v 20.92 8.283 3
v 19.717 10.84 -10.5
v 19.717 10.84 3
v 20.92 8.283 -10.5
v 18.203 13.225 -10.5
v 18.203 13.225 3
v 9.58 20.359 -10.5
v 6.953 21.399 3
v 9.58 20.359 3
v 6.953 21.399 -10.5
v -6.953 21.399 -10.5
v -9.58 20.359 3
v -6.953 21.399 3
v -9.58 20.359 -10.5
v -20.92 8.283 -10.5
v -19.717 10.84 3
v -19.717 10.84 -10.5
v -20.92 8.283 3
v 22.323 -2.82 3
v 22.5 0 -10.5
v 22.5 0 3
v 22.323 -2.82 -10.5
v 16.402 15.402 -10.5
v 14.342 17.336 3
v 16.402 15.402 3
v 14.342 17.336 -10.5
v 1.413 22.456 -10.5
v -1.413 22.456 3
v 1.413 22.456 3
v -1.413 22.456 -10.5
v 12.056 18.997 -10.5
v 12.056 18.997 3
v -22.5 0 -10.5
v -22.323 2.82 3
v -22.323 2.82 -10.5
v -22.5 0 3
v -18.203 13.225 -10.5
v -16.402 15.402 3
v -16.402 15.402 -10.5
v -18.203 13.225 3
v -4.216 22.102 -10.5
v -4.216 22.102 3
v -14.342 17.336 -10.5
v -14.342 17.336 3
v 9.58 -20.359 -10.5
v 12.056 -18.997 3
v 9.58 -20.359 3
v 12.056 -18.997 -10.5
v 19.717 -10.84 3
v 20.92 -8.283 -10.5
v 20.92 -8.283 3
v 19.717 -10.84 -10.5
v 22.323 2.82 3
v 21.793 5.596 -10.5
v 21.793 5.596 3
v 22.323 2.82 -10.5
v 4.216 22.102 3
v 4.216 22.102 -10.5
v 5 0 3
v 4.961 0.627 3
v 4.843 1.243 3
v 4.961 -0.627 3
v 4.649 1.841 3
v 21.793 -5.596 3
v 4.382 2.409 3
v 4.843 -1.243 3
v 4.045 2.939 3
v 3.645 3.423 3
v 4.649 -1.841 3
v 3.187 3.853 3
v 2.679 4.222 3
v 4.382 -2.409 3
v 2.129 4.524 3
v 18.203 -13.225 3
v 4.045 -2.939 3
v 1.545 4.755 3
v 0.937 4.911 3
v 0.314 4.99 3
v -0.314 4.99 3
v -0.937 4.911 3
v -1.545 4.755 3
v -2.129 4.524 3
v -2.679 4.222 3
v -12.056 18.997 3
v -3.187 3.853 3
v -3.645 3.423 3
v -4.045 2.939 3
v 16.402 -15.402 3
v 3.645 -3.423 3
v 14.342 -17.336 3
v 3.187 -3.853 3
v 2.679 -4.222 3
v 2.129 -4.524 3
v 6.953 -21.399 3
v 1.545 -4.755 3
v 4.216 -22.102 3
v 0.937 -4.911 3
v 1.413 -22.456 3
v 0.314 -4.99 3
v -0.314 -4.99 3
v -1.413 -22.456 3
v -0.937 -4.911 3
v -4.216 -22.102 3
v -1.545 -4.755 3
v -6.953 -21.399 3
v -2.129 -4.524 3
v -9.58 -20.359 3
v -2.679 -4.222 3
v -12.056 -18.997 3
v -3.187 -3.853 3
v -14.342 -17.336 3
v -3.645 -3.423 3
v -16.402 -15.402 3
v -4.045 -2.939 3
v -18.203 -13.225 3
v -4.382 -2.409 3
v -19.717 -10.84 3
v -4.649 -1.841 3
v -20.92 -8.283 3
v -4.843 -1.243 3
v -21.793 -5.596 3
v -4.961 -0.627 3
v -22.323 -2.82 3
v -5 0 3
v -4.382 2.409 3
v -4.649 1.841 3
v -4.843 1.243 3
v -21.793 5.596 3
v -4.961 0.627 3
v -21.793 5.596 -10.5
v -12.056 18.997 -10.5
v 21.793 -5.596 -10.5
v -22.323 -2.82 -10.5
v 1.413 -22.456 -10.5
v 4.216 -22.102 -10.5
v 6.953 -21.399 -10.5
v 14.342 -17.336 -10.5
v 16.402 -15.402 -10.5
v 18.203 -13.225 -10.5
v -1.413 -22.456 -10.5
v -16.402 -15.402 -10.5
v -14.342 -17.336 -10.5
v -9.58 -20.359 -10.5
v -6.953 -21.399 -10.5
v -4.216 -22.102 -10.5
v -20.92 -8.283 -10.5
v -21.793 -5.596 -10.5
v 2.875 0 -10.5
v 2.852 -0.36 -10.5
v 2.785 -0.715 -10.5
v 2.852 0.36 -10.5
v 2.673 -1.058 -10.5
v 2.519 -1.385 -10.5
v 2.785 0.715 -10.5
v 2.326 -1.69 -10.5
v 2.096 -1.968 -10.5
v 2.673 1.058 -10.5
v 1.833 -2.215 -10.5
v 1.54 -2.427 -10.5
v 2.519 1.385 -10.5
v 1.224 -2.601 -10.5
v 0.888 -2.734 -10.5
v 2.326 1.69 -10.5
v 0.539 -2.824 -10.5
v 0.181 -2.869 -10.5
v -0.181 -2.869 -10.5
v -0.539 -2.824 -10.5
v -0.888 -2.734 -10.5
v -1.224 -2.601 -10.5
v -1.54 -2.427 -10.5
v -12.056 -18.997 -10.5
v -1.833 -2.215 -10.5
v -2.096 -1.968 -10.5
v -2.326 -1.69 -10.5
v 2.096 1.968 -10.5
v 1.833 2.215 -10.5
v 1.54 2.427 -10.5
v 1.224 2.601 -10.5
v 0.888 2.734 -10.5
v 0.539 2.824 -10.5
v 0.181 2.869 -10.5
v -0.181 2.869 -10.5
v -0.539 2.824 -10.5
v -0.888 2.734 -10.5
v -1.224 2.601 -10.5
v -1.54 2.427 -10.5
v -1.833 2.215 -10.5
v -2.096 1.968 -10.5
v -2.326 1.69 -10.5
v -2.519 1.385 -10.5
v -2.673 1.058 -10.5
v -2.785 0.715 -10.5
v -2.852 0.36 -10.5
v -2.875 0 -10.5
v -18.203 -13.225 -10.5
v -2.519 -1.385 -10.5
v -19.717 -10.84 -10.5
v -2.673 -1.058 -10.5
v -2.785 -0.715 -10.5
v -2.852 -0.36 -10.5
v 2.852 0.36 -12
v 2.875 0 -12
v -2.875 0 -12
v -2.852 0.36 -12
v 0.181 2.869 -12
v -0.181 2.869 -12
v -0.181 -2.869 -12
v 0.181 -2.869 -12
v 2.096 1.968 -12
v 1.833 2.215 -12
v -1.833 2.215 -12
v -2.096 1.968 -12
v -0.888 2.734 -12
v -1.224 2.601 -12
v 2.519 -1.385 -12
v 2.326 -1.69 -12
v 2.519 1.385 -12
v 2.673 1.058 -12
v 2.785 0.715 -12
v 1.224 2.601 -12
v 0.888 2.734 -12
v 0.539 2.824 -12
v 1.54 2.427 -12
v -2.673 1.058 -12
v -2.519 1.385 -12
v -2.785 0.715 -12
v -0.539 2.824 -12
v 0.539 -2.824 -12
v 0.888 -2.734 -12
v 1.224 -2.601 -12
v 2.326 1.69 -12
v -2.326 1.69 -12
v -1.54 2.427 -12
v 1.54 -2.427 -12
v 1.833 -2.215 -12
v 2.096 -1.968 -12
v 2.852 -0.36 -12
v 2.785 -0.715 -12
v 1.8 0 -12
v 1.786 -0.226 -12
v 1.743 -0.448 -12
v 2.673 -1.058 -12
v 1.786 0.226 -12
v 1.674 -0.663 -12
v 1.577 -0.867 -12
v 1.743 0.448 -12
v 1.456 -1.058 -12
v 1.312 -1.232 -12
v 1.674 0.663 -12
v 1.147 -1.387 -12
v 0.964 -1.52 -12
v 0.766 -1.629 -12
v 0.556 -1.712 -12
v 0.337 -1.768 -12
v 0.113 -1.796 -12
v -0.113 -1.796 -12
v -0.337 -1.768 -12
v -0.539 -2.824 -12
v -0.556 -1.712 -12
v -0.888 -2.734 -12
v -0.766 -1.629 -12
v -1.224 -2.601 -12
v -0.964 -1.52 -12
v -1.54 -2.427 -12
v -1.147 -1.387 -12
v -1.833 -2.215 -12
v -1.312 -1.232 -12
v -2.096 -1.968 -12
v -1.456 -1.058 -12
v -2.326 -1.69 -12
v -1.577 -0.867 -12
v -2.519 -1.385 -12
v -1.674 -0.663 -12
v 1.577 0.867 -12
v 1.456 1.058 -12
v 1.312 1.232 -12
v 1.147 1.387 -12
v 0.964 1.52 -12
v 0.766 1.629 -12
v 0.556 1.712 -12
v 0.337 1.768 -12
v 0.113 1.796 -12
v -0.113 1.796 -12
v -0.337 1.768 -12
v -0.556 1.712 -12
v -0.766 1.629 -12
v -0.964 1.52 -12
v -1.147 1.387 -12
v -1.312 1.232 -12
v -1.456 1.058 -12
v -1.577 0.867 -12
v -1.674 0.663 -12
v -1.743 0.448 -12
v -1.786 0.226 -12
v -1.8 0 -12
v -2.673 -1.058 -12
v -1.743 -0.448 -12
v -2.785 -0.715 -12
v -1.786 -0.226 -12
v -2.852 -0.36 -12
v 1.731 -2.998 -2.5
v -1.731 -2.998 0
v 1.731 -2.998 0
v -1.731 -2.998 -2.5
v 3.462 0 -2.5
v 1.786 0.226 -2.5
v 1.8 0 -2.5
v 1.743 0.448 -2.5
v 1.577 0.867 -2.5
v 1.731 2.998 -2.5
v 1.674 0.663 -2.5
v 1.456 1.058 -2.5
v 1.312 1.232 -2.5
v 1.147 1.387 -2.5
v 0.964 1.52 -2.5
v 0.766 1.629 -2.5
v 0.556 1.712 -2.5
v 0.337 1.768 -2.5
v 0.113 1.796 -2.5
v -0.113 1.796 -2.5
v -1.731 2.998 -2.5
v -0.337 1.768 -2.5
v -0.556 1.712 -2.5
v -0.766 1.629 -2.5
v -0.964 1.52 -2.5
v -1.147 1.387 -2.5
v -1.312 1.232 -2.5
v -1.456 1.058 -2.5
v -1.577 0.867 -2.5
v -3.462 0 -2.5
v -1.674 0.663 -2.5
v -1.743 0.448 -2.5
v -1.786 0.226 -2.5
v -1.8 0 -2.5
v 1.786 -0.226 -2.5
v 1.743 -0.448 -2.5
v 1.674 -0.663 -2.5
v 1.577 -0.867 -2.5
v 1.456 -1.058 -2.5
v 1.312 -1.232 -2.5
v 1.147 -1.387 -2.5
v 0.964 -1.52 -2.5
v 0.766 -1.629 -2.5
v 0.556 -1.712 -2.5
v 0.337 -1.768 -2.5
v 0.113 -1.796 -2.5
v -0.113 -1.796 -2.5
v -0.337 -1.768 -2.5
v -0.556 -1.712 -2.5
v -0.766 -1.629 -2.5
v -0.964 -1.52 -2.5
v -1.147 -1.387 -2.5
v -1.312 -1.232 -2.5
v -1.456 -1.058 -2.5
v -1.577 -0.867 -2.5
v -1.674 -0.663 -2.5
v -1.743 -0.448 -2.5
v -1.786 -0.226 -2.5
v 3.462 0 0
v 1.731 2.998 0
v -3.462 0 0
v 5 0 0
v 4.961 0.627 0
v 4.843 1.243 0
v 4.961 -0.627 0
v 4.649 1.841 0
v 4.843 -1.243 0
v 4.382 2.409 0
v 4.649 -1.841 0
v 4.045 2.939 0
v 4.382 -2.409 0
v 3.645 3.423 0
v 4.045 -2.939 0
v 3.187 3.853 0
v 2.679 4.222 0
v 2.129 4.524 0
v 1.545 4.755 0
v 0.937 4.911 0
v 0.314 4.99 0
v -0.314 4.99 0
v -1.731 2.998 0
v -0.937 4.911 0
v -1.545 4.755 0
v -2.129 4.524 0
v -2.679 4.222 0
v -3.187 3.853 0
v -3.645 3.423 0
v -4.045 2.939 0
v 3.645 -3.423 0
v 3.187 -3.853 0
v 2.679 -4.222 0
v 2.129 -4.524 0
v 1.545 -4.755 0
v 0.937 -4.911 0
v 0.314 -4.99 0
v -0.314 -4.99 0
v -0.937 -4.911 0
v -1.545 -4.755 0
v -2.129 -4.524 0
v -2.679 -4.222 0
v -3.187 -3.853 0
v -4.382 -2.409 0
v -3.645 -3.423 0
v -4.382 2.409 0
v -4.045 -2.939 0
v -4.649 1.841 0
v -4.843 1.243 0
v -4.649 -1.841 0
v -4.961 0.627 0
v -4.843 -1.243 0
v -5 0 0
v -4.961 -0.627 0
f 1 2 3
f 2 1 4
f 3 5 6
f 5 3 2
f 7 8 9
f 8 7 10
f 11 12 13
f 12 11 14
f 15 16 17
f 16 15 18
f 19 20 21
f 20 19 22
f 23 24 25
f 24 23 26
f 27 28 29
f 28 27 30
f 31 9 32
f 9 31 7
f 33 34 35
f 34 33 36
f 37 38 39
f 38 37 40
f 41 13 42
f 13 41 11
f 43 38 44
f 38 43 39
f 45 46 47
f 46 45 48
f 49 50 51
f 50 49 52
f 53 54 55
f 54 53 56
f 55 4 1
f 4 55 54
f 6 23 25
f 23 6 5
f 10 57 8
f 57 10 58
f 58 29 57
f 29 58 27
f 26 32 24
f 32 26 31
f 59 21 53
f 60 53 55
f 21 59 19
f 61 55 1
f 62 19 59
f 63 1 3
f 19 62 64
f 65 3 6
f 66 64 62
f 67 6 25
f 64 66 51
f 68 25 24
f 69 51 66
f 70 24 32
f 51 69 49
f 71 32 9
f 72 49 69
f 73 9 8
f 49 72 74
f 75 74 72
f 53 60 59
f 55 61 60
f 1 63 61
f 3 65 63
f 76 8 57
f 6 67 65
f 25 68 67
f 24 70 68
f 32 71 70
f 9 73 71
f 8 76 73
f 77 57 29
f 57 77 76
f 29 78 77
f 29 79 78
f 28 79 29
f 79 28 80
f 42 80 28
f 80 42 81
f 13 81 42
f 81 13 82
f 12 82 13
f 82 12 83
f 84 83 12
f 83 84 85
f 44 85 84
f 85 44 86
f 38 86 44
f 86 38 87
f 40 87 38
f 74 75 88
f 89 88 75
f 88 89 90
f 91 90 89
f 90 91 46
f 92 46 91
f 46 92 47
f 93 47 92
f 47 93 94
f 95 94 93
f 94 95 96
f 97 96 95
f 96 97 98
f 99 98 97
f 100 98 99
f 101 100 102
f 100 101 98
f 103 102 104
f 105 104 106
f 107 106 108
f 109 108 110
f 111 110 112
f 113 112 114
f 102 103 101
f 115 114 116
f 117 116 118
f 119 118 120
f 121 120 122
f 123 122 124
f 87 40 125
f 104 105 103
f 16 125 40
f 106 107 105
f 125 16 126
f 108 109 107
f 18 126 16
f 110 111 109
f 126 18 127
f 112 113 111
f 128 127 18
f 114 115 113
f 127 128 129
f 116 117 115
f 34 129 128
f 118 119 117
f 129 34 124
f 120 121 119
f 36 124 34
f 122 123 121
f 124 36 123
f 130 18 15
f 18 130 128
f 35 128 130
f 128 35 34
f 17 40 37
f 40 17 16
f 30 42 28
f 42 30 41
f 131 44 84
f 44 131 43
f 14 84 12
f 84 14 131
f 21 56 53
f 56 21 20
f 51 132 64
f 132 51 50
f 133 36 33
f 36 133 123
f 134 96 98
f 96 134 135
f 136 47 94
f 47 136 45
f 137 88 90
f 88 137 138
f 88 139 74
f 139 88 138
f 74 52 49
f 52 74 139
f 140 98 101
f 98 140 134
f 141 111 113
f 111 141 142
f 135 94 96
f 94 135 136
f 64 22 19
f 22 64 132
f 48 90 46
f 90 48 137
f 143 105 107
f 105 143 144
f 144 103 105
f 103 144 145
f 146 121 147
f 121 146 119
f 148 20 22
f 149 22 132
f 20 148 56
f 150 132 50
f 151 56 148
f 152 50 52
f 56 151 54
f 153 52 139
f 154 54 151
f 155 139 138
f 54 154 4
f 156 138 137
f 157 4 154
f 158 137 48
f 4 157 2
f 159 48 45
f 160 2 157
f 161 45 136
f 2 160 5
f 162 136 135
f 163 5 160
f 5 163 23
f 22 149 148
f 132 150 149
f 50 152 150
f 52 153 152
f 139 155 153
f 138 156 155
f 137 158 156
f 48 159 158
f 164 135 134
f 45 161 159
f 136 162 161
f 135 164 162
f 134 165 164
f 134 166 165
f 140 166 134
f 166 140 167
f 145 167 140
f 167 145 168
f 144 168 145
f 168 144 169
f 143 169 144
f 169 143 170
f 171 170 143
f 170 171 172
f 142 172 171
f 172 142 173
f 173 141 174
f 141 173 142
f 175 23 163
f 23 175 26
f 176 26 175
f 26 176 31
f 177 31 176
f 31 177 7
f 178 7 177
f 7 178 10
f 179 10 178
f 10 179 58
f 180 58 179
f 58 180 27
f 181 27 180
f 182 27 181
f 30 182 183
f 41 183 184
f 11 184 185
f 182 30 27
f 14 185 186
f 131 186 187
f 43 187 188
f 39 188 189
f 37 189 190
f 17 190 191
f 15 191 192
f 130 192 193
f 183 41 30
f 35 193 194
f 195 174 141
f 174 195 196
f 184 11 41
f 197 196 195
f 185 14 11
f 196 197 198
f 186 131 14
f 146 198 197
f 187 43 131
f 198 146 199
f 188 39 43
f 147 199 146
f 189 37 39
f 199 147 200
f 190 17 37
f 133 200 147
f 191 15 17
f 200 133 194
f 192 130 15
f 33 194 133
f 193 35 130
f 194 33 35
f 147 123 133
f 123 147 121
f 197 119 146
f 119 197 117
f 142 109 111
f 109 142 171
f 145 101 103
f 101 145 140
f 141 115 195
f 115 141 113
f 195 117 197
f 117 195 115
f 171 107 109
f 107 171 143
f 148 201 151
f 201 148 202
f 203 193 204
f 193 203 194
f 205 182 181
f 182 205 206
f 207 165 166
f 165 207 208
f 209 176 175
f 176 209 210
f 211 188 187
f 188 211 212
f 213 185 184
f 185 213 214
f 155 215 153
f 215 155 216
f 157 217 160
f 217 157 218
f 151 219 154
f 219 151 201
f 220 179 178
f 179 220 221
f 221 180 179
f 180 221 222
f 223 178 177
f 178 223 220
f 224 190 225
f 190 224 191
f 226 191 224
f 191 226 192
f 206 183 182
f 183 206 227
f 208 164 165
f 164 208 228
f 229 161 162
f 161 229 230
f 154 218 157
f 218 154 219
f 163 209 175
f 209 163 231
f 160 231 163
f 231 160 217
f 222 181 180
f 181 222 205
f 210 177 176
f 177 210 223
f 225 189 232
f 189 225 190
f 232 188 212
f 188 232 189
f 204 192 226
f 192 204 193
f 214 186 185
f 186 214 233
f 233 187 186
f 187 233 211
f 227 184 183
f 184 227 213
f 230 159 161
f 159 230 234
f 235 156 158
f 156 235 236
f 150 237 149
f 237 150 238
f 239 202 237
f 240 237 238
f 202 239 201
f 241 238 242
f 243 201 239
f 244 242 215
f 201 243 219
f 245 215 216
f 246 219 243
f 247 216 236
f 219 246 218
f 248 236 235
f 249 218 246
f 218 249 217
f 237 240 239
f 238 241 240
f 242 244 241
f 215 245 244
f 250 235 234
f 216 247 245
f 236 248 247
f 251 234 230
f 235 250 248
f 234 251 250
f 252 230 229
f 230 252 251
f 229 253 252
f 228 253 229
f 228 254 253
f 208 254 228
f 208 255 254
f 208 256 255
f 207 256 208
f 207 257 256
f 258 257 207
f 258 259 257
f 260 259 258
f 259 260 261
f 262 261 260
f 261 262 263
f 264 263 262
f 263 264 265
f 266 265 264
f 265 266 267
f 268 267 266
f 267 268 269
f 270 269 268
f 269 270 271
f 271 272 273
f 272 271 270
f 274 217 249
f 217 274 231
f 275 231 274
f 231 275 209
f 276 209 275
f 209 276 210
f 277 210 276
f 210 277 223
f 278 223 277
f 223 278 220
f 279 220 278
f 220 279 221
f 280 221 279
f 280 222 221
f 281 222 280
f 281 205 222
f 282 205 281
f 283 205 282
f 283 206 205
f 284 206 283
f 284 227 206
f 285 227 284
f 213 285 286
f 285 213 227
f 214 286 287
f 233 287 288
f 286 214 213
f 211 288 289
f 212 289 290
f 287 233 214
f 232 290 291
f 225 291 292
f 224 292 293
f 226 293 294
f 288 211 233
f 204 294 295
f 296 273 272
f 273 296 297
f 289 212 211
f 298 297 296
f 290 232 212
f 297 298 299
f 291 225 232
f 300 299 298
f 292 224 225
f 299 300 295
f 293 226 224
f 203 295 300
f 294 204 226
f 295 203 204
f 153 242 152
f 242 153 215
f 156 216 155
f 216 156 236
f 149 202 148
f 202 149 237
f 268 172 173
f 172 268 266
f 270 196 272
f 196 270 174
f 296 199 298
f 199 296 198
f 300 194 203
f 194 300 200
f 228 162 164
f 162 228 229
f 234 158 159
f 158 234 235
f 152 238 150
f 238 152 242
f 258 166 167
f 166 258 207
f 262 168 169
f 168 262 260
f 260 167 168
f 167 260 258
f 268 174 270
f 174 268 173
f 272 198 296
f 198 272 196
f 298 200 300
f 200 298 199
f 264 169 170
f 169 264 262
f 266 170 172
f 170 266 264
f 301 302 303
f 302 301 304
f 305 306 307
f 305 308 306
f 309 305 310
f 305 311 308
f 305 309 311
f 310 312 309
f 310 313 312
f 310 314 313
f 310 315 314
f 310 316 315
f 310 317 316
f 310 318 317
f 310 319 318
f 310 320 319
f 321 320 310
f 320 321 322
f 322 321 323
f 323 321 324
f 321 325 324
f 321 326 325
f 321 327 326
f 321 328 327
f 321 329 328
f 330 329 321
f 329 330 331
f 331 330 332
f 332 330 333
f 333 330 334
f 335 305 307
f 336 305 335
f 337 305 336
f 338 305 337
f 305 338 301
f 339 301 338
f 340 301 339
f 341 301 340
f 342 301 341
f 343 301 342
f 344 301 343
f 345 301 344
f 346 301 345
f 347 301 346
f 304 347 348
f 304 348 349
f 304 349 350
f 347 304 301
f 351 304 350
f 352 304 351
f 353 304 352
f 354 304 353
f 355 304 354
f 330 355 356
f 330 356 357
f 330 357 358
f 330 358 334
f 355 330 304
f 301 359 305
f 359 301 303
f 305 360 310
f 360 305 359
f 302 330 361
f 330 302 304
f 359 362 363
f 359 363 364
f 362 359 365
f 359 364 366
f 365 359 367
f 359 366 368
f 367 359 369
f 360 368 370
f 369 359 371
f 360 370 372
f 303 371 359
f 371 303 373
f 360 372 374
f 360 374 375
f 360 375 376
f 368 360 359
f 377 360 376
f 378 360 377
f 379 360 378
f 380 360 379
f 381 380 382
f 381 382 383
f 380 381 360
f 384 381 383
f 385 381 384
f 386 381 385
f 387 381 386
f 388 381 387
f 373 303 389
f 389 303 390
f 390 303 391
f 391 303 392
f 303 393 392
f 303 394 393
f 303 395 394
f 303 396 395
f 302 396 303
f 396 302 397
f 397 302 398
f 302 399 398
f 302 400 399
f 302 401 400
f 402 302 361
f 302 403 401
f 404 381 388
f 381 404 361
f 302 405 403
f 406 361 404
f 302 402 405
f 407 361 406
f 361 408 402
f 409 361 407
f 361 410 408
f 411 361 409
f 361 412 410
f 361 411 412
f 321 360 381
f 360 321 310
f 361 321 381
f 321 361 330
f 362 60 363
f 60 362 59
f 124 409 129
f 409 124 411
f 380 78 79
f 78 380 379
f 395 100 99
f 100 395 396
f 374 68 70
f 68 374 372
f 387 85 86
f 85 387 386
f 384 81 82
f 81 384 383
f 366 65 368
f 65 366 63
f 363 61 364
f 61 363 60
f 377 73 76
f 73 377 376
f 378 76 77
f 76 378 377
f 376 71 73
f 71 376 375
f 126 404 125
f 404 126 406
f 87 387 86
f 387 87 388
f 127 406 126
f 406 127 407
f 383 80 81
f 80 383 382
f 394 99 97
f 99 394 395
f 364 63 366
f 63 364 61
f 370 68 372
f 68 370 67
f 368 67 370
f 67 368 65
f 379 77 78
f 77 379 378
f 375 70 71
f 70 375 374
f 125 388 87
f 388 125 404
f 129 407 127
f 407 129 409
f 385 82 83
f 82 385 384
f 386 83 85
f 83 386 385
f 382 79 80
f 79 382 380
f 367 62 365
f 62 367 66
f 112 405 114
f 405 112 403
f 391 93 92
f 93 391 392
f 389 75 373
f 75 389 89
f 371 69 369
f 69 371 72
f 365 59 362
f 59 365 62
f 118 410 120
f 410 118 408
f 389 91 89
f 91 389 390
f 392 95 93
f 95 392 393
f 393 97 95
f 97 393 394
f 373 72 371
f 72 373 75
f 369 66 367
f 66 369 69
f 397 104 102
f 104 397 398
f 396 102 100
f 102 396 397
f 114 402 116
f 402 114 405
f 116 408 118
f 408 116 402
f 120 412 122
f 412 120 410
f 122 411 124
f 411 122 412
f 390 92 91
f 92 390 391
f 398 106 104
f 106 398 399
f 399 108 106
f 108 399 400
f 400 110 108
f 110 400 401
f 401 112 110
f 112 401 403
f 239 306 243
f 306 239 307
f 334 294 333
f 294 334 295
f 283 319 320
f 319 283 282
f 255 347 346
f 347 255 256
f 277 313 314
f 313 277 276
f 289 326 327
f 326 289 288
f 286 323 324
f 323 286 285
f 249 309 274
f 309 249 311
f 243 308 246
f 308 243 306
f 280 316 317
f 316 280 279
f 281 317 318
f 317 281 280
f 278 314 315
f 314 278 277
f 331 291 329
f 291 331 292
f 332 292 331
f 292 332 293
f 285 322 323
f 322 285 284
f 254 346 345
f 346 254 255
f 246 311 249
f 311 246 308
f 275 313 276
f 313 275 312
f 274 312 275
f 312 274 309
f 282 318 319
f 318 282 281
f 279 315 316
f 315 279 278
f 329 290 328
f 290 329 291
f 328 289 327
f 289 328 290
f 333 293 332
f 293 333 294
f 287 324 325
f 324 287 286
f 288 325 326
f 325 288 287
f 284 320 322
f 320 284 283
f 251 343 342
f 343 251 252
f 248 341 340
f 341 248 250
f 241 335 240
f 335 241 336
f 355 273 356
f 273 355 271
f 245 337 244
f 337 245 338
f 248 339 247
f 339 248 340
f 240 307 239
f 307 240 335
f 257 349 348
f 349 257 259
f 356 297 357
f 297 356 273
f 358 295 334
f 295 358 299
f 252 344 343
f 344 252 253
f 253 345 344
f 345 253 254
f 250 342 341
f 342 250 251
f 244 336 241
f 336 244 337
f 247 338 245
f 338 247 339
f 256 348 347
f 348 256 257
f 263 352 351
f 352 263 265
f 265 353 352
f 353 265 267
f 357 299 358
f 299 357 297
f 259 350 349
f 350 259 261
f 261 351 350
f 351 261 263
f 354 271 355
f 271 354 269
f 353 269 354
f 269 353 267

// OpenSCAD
$fn = 50;


difference() {
	union() {
		translate(v = [0, 0, -10.5000000000]) {
			cylinder(h = 13.5000000000, r = 22.5000000000);
		}
		#translate(v = [0, 0, -12.0000000000]) {
			cylinder(h = 12, r = 2.8750000000);
		}
	}
	union() {
		translate(v = [0, 0, 0]) {
			rotate(a = [0, 0, 0]) {
				difference() {
					union() {
						translate(v = [0, 0, -2.5000000000]) {
							linear_extrude(height = 2.5000000000) {
								polygon(points = [[3.4620000000, 0.0000000000], [1.7310000000, 2.9981799479], [-1.7310000000, 2.9981799479], [-3.4620000000, 0.0000000000], [-1.7310000000, -2.9981799479], [1.7310000000, -2.9981799479]]);
							}
						}
					}
					union();
				}
			}
		}
		#cylinder(h = 3, r = 5.0000000000);
		#translate(v = [0, 0, -100.0000000000]) {
			cylinder(h = 200, r = 1.8000000000);
		}
	}
}
